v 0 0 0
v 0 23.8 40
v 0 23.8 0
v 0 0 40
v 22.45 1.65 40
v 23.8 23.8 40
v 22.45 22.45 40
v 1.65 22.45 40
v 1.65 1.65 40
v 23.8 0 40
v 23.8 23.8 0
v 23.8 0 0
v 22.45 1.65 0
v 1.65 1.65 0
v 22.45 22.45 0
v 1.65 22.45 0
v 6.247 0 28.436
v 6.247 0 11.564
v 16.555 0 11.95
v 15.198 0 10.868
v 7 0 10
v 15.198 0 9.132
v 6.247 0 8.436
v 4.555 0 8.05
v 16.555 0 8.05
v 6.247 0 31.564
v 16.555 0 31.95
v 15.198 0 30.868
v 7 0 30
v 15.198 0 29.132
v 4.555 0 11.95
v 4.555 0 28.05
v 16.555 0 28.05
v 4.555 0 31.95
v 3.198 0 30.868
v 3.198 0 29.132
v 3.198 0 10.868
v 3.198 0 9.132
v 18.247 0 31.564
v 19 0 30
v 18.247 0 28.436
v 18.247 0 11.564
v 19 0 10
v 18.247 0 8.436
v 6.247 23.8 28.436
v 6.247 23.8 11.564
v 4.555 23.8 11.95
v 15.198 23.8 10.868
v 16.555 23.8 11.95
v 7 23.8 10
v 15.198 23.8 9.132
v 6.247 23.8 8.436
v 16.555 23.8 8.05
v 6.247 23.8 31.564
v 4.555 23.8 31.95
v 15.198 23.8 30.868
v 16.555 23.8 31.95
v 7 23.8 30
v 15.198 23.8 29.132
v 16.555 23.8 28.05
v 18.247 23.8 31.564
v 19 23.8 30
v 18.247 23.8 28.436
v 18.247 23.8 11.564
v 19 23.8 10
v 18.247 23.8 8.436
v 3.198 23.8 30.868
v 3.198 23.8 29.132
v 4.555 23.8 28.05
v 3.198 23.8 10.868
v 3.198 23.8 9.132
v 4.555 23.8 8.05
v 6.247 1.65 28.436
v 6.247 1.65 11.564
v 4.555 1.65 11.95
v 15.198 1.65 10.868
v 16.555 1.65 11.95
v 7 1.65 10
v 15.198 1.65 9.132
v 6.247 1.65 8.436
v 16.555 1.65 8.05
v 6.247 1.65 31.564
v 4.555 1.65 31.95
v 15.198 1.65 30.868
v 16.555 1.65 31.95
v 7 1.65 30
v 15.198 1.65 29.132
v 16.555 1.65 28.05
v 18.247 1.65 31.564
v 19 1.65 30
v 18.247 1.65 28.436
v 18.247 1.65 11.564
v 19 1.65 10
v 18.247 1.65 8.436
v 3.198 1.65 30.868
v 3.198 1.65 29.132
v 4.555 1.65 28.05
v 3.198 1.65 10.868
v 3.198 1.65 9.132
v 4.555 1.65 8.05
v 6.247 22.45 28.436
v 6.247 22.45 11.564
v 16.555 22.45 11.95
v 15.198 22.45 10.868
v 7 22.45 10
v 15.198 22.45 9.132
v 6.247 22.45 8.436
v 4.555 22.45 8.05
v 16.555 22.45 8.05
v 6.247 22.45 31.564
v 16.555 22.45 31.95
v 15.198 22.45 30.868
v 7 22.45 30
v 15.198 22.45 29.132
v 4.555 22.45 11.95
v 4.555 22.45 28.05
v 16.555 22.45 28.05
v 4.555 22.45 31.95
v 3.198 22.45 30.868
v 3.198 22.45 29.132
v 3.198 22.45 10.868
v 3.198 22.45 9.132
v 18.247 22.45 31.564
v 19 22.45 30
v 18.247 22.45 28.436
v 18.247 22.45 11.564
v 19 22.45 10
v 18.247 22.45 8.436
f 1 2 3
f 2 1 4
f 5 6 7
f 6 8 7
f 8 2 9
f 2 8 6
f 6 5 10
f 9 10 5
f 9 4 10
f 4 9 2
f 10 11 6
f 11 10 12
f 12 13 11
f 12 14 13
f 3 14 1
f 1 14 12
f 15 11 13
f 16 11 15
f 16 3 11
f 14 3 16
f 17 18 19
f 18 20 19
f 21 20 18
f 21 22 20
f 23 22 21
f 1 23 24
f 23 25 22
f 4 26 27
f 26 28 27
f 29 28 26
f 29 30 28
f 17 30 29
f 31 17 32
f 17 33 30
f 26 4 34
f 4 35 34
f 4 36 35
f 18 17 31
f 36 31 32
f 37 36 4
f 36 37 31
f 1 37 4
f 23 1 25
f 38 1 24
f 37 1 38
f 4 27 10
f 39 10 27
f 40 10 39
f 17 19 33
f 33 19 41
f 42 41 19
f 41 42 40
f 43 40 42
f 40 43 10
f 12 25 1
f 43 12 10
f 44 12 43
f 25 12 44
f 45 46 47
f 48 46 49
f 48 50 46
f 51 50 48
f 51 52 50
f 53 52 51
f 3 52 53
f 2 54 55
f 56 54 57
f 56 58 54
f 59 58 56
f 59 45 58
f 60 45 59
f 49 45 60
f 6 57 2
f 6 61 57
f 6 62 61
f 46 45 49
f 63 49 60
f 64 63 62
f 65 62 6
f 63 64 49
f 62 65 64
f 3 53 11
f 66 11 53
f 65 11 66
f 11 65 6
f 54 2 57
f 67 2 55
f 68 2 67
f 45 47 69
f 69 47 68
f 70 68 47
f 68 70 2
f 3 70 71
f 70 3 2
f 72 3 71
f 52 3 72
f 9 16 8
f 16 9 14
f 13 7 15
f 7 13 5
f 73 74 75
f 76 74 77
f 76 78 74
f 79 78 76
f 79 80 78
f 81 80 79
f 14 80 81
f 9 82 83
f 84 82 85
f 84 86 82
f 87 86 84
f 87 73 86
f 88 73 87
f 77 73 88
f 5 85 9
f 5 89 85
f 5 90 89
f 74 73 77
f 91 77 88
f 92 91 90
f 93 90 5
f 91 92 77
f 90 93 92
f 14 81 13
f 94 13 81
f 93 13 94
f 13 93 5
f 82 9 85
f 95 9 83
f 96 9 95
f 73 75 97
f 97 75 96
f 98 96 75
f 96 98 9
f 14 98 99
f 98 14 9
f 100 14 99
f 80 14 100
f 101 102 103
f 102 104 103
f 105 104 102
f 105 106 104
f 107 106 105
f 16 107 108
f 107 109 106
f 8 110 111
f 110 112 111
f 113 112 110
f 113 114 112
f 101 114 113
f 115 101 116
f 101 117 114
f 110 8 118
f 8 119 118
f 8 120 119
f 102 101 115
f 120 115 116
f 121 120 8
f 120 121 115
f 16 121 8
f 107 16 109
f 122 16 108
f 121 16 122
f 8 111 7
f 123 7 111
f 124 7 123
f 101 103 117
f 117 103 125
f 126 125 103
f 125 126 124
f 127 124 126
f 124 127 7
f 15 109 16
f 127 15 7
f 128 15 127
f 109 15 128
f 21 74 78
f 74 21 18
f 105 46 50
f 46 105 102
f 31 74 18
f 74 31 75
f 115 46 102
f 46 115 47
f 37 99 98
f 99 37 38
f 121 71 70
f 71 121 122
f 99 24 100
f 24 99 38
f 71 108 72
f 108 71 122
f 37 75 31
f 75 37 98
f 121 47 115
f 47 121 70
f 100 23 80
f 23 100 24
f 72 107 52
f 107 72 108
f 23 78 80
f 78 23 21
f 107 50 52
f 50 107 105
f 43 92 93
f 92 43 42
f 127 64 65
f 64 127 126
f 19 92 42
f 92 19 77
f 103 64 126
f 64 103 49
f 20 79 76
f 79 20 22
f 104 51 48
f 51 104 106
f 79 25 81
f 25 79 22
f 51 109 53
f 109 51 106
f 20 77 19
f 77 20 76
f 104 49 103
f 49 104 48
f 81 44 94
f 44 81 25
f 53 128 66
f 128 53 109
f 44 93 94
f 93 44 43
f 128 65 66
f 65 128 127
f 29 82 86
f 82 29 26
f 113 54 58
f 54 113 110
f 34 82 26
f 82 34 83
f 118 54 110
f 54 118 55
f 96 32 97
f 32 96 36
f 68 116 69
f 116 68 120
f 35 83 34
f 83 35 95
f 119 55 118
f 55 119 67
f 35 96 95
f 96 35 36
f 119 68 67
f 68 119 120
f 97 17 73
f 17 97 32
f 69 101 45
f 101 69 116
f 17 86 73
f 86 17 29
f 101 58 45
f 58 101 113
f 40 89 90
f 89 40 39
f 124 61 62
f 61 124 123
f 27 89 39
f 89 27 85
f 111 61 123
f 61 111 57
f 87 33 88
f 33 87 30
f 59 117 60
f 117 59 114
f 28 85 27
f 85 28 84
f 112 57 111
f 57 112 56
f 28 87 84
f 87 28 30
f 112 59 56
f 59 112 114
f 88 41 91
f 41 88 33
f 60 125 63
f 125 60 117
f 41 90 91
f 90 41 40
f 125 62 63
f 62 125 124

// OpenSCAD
difference() {
    cube([23.8, 23.8, 40]);
    
    translate([1.65, 1.65, -0.1]) {
        cube([20.8, 20.8, 41]);
    }

    translate([5, 32, 10]) {
        rotate([90, 0, 0]) {
            cylinder(h=50, r = 2);
        }
    }

    translate([17, 32, 10]) {
        rotate([90, 0, 0]) {
            cylinder(h=50, r = 2);
        }
    }

    translate([5, 32, 30]) {
        rotate([90, 0, 0]) {
            cylinder(h=50, r = 2);
        }
    }

    translate([17, 32, 30]) {
        rotate([90, 0, 0]) {
            cylinder(h=50, r = 2);
        }
    }    
}
